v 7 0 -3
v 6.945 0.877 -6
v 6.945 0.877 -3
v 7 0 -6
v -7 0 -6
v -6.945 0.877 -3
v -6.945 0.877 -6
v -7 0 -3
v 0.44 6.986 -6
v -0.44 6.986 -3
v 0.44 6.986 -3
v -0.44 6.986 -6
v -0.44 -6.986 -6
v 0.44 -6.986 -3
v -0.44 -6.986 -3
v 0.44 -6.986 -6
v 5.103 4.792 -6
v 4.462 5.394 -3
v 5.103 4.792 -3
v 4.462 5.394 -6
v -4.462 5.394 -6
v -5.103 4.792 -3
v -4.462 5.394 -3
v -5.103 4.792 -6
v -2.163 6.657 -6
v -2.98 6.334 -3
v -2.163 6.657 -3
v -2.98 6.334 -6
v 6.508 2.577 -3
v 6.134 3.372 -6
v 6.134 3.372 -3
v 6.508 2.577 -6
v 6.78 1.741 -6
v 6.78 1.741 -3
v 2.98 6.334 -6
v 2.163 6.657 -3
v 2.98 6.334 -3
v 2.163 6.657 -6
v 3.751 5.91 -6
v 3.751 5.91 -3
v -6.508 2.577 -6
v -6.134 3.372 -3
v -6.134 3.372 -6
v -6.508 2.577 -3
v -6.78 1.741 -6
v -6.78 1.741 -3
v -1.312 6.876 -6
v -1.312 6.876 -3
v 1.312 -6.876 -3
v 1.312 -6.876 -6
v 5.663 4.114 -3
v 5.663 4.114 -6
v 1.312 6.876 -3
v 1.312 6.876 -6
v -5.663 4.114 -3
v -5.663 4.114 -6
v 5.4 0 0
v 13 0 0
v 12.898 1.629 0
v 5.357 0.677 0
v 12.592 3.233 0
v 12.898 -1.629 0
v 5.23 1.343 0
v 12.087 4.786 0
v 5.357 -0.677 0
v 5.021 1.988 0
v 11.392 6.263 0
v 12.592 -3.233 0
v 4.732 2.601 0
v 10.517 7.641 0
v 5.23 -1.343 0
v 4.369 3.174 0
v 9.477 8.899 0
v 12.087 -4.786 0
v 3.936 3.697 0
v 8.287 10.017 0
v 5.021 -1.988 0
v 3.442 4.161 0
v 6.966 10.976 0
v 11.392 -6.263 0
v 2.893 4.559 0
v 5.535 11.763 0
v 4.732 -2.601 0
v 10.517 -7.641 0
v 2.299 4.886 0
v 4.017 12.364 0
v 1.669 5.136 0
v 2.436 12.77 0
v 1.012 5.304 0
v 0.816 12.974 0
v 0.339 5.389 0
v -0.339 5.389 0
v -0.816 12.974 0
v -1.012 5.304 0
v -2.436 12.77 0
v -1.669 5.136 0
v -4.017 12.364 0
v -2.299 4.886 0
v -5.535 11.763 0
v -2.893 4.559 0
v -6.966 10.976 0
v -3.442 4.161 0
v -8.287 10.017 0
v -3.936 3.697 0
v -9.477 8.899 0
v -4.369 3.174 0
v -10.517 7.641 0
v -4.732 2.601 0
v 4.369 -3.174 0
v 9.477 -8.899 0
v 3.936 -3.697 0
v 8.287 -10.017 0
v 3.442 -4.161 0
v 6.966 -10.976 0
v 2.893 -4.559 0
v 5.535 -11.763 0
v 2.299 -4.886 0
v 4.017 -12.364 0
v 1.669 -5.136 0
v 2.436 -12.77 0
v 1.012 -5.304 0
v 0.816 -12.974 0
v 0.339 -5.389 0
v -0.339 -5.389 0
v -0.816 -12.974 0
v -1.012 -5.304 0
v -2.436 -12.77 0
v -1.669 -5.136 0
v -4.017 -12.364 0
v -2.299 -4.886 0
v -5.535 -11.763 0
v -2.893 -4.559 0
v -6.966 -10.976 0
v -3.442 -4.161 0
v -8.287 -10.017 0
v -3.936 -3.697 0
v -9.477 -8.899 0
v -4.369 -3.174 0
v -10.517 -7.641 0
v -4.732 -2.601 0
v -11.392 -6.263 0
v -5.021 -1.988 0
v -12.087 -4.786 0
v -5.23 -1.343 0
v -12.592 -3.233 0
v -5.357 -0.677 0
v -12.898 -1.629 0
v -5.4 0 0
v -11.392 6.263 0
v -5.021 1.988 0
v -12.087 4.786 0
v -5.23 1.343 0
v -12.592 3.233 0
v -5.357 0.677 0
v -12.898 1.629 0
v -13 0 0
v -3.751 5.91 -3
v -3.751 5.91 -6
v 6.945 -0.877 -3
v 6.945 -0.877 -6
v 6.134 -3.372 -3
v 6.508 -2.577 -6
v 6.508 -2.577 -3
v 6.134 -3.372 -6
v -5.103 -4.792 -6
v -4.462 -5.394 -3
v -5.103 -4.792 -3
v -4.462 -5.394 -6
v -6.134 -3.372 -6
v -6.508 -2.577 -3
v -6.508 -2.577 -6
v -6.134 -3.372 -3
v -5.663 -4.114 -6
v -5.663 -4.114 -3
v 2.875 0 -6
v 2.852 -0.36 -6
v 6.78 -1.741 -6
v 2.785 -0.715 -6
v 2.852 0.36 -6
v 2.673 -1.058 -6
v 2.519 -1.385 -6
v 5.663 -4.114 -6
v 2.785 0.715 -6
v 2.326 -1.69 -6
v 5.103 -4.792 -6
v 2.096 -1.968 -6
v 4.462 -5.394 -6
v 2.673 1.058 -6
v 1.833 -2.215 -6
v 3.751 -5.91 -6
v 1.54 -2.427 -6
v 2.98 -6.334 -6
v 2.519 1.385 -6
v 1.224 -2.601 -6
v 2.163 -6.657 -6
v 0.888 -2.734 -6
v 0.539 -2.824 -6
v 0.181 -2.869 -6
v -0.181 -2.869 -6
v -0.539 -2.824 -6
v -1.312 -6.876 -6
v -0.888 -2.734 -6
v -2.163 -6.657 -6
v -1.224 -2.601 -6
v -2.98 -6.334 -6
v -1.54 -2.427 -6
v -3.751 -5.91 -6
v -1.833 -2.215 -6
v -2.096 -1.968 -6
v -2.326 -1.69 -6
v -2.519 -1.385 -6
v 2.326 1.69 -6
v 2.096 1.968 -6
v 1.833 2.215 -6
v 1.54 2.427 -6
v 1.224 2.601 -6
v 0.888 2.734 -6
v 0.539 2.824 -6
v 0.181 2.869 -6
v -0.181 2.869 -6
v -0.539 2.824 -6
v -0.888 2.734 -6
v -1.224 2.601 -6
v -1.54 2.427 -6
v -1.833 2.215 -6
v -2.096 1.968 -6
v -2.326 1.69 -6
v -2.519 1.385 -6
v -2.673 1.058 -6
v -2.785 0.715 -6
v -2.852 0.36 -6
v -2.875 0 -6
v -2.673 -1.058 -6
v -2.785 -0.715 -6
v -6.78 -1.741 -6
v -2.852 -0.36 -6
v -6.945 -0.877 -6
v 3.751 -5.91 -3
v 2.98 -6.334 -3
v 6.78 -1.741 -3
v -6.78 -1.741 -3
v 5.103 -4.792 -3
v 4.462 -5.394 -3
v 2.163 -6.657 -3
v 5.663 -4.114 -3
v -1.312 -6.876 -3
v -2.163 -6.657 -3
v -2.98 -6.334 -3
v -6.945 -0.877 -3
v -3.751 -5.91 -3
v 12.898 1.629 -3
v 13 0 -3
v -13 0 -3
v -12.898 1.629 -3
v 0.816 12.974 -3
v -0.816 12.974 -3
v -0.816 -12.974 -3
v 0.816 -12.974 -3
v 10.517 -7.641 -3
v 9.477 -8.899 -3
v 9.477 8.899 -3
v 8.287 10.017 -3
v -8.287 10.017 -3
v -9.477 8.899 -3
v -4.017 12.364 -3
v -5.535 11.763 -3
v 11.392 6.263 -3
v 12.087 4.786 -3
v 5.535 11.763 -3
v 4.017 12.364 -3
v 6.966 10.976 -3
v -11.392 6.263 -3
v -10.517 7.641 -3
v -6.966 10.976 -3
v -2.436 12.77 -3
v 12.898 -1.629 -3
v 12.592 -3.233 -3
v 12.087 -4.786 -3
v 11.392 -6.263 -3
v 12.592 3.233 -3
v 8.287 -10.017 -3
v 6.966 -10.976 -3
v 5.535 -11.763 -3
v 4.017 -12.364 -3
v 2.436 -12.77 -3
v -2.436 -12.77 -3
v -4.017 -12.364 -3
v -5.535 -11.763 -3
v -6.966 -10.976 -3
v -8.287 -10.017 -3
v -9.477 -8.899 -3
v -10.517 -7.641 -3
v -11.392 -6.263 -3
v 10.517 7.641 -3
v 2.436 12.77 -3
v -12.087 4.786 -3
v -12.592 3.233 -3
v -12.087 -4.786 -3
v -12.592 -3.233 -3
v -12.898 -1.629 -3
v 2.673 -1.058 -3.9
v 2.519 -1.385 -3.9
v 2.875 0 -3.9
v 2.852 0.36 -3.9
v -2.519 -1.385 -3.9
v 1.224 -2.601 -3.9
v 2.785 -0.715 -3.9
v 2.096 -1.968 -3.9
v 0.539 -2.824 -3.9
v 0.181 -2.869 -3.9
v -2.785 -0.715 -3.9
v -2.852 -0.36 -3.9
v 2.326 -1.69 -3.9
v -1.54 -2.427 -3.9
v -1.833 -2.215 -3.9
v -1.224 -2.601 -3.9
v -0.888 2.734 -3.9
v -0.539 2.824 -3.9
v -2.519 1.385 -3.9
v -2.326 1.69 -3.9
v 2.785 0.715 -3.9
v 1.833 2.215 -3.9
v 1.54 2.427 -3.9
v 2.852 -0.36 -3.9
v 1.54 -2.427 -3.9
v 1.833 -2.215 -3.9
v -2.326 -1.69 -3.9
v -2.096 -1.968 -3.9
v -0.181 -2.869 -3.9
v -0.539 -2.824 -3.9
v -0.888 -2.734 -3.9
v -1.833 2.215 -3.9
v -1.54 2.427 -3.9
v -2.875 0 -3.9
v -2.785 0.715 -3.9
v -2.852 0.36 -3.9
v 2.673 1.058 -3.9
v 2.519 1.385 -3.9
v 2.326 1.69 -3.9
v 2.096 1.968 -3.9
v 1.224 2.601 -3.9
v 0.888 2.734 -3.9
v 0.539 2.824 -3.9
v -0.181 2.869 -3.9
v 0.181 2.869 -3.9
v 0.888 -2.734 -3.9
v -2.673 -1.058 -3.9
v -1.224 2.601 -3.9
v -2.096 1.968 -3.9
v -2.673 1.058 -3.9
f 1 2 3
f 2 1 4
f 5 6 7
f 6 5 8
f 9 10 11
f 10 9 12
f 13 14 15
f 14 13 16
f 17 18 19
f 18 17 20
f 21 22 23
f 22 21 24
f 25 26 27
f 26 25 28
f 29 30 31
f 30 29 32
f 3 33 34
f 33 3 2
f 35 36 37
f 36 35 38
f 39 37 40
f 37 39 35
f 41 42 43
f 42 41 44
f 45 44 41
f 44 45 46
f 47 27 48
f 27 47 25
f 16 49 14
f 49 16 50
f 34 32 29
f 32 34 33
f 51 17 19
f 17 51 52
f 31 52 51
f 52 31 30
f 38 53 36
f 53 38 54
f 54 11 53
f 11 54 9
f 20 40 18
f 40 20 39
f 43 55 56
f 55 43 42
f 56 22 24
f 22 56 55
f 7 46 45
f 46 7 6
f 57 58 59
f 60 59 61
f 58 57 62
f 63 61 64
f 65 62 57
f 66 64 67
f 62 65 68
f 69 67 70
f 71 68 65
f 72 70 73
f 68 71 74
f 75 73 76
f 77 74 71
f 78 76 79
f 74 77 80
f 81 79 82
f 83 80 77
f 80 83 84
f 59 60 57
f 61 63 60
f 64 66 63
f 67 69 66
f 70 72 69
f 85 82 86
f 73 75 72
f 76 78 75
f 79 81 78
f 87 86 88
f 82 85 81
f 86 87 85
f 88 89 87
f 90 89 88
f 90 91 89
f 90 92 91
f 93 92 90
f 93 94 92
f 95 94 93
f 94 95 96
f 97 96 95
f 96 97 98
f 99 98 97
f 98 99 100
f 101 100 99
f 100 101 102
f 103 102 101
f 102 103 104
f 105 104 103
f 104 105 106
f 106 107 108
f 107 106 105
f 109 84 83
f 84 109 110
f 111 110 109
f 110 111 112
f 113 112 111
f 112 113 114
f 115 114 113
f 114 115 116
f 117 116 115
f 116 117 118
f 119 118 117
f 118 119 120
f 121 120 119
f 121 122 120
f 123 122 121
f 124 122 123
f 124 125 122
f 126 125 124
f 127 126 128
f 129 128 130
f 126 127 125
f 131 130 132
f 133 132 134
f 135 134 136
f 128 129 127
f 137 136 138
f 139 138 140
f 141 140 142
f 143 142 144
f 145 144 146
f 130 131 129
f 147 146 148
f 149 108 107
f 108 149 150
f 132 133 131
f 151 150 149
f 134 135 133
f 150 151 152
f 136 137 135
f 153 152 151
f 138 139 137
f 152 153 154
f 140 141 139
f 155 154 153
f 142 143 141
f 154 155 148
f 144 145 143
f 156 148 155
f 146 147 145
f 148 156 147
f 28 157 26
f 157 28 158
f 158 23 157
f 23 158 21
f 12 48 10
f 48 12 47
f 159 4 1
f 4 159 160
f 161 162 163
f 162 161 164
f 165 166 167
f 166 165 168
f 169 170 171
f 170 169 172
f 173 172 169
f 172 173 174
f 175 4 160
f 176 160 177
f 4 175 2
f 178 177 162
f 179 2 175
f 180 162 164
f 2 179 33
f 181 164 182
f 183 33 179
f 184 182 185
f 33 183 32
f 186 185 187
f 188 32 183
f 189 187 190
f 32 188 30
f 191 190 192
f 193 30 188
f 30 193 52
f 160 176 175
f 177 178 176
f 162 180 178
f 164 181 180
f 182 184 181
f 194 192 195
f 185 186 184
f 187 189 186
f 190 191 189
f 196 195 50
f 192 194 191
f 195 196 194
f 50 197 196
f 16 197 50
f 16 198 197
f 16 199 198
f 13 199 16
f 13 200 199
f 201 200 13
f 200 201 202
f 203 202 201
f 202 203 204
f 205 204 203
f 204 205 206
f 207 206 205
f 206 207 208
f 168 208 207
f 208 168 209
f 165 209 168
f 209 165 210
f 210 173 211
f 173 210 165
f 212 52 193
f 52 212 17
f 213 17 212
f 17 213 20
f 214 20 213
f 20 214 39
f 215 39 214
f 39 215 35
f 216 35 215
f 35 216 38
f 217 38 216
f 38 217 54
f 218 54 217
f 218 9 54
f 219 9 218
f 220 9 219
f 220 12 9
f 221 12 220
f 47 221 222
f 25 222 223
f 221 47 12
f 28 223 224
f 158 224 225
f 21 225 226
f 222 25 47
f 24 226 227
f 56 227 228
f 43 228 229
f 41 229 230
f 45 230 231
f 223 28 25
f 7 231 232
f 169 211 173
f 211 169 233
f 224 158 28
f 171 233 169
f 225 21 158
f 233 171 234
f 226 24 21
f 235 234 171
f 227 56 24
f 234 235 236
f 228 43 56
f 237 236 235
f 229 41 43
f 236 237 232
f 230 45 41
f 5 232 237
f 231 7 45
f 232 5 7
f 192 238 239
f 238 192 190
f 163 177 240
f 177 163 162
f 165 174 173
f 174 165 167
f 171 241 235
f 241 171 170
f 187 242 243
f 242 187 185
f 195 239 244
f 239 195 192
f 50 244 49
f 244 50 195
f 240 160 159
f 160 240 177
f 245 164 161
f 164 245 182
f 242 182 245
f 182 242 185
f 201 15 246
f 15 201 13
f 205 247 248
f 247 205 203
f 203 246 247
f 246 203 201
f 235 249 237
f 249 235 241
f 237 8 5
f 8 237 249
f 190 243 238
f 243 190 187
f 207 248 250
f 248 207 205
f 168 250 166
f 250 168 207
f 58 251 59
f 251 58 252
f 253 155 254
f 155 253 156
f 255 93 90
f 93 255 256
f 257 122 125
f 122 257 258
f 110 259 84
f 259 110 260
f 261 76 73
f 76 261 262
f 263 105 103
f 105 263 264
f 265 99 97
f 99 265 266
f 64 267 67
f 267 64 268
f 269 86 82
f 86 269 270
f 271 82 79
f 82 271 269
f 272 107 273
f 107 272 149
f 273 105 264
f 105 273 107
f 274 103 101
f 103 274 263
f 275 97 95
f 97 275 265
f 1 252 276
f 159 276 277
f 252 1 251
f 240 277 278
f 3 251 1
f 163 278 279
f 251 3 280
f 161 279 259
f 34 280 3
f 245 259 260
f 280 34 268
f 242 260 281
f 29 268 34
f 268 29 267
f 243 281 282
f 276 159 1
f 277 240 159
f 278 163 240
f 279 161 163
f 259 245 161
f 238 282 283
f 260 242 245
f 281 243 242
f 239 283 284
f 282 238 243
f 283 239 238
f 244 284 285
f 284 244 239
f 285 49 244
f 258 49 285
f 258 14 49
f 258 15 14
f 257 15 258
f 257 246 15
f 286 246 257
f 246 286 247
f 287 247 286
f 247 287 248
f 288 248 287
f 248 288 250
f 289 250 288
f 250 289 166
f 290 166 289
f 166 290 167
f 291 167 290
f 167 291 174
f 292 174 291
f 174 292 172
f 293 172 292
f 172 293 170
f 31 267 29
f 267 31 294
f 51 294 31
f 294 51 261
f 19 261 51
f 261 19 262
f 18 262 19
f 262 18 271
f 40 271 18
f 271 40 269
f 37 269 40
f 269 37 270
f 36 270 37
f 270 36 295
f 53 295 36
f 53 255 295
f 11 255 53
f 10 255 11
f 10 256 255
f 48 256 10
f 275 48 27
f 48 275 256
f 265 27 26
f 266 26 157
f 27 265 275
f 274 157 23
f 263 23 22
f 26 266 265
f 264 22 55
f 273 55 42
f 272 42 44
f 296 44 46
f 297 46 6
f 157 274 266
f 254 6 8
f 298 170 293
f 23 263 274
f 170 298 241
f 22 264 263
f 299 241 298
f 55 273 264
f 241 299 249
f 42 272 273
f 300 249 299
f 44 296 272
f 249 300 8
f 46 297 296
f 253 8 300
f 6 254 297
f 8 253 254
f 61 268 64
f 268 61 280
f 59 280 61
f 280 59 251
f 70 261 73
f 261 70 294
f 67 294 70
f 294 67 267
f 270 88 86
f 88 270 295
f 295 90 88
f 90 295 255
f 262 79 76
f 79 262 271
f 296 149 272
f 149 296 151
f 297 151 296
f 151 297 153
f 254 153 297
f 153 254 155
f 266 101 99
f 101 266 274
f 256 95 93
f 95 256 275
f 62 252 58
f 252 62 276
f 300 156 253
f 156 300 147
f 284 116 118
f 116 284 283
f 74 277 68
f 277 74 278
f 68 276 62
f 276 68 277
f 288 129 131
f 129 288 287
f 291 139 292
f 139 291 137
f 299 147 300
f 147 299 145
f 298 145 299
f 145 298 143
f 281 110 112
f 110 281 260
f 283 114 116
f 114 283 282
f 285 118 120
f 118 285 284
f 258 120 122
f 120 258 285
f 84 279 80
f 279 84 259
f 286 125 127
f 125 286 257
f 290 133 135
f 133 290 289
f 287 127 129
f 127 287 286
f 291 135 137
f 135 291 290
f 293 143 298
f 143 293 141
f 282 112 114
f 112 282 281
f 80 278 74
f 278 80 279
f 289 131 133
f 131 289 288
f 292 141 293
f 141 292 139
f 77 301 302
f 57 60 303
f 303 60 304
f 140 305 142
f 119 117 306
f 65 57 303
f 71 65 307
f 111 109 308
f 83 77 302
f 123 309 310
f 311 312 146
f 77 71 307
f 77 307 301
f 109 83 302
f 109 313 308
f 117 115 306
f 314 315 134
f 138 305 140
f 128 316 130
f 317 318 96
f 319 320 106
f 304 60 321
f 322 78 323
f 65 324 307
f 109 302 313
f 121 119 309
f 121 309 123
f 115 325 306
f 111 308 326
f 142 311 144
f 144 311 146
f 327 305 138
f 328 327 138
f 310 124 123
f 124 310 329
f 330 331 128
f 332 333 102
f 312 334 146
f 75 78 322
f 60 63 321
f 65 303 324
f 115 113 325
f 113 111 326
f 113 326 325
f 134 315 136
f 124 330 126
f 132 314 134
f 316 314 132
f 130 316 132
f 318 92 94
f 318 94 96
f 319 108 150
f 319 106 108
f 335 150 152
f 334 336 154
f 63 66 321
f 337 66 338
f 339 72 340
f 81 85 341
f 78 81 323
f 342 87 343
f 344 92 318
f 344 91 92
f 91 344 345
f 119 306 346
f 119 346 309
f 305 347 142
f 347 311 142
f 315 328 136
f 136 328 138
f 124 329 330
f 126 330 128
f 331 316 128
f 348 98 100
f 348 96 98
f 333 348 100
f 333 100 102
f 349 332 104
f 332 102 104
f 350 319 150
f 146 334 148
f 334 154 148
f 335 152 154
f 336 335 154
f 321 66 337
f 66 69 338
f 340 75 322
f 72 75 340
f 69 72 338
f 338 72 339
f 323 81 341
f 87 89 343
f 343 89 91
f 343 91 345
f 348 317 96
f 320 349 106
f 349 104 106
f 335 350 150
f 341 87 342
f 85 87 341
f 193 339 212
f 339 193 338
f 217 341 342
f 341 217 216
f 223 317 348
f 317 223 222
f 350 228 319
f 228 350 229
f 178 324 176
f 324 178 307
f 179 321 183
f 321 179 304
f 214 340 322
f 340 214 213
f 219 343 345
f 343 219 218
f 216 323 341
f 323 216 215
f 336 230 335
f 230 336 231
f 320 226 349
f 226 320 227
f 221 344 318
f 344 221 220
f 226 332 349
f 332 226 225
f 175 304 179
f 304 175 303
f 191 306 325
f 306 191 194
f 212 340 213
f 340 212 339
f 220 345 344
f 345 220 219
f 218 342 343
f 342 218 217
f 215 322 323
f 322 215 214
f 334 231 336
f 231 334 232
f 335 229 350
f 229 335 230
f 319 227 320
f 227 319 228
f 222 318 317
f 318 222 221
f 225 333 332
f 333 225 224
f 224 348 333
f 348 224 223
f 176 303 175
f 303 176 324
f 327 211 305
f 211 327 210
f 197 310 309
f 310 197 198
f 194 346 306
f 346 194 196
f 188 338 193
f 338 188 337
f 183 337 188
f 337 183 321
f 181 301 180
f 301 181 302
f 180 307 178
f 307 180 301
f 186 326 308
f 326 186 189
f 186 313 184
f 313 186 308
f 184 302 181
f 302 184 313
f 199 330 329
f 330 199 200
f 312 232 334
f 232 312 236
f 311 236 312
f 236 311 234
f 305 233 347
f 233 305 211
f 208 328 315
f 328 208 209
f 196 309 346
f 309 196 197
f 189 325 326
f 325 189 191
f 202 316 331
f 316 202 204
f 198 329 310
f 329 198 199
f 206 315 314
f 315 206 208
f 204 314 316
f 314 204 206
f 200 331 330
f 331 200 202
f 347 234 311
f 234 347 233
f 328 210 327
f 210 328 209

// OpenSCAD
$fn = 50;


difference() {
	union() {
		translate(v = [0, 0, -6.0000000000]) {
			cylinder(h = 6, r = 7.0000000000);
		}
		translate(v = [0, 0, -3.0000000000]) {
			cylinder(h = 3, r = 13.0000000000);
		}
	}
	union() {
		translate(v = [0, 0, 0]) {
			rotate(a = [0, 0, 0]) {
				difference() {
					union() {
						#translate(v = [0, 0, -6.0000000000]) {
							cylinder(h = 6, r = 2.6000000000);
						}
						#translate(v = [0, 0, -3.9000000000]) {
							cylinder(h = 3.9000000000, r1 = 2.8750000000, r2 = 5.4000000000);
						}
						#translate(v = [0, 0, -6.0000000000]) {
							cylinder(h = 6, r = 2.8750000000);
						}
						#translate(v = [0, 0, -6.0000000000]) {
							cylinder(h = 6, r = 2.6000000000);
						}
					}
					union();
				}
			}
		}
	}
}
